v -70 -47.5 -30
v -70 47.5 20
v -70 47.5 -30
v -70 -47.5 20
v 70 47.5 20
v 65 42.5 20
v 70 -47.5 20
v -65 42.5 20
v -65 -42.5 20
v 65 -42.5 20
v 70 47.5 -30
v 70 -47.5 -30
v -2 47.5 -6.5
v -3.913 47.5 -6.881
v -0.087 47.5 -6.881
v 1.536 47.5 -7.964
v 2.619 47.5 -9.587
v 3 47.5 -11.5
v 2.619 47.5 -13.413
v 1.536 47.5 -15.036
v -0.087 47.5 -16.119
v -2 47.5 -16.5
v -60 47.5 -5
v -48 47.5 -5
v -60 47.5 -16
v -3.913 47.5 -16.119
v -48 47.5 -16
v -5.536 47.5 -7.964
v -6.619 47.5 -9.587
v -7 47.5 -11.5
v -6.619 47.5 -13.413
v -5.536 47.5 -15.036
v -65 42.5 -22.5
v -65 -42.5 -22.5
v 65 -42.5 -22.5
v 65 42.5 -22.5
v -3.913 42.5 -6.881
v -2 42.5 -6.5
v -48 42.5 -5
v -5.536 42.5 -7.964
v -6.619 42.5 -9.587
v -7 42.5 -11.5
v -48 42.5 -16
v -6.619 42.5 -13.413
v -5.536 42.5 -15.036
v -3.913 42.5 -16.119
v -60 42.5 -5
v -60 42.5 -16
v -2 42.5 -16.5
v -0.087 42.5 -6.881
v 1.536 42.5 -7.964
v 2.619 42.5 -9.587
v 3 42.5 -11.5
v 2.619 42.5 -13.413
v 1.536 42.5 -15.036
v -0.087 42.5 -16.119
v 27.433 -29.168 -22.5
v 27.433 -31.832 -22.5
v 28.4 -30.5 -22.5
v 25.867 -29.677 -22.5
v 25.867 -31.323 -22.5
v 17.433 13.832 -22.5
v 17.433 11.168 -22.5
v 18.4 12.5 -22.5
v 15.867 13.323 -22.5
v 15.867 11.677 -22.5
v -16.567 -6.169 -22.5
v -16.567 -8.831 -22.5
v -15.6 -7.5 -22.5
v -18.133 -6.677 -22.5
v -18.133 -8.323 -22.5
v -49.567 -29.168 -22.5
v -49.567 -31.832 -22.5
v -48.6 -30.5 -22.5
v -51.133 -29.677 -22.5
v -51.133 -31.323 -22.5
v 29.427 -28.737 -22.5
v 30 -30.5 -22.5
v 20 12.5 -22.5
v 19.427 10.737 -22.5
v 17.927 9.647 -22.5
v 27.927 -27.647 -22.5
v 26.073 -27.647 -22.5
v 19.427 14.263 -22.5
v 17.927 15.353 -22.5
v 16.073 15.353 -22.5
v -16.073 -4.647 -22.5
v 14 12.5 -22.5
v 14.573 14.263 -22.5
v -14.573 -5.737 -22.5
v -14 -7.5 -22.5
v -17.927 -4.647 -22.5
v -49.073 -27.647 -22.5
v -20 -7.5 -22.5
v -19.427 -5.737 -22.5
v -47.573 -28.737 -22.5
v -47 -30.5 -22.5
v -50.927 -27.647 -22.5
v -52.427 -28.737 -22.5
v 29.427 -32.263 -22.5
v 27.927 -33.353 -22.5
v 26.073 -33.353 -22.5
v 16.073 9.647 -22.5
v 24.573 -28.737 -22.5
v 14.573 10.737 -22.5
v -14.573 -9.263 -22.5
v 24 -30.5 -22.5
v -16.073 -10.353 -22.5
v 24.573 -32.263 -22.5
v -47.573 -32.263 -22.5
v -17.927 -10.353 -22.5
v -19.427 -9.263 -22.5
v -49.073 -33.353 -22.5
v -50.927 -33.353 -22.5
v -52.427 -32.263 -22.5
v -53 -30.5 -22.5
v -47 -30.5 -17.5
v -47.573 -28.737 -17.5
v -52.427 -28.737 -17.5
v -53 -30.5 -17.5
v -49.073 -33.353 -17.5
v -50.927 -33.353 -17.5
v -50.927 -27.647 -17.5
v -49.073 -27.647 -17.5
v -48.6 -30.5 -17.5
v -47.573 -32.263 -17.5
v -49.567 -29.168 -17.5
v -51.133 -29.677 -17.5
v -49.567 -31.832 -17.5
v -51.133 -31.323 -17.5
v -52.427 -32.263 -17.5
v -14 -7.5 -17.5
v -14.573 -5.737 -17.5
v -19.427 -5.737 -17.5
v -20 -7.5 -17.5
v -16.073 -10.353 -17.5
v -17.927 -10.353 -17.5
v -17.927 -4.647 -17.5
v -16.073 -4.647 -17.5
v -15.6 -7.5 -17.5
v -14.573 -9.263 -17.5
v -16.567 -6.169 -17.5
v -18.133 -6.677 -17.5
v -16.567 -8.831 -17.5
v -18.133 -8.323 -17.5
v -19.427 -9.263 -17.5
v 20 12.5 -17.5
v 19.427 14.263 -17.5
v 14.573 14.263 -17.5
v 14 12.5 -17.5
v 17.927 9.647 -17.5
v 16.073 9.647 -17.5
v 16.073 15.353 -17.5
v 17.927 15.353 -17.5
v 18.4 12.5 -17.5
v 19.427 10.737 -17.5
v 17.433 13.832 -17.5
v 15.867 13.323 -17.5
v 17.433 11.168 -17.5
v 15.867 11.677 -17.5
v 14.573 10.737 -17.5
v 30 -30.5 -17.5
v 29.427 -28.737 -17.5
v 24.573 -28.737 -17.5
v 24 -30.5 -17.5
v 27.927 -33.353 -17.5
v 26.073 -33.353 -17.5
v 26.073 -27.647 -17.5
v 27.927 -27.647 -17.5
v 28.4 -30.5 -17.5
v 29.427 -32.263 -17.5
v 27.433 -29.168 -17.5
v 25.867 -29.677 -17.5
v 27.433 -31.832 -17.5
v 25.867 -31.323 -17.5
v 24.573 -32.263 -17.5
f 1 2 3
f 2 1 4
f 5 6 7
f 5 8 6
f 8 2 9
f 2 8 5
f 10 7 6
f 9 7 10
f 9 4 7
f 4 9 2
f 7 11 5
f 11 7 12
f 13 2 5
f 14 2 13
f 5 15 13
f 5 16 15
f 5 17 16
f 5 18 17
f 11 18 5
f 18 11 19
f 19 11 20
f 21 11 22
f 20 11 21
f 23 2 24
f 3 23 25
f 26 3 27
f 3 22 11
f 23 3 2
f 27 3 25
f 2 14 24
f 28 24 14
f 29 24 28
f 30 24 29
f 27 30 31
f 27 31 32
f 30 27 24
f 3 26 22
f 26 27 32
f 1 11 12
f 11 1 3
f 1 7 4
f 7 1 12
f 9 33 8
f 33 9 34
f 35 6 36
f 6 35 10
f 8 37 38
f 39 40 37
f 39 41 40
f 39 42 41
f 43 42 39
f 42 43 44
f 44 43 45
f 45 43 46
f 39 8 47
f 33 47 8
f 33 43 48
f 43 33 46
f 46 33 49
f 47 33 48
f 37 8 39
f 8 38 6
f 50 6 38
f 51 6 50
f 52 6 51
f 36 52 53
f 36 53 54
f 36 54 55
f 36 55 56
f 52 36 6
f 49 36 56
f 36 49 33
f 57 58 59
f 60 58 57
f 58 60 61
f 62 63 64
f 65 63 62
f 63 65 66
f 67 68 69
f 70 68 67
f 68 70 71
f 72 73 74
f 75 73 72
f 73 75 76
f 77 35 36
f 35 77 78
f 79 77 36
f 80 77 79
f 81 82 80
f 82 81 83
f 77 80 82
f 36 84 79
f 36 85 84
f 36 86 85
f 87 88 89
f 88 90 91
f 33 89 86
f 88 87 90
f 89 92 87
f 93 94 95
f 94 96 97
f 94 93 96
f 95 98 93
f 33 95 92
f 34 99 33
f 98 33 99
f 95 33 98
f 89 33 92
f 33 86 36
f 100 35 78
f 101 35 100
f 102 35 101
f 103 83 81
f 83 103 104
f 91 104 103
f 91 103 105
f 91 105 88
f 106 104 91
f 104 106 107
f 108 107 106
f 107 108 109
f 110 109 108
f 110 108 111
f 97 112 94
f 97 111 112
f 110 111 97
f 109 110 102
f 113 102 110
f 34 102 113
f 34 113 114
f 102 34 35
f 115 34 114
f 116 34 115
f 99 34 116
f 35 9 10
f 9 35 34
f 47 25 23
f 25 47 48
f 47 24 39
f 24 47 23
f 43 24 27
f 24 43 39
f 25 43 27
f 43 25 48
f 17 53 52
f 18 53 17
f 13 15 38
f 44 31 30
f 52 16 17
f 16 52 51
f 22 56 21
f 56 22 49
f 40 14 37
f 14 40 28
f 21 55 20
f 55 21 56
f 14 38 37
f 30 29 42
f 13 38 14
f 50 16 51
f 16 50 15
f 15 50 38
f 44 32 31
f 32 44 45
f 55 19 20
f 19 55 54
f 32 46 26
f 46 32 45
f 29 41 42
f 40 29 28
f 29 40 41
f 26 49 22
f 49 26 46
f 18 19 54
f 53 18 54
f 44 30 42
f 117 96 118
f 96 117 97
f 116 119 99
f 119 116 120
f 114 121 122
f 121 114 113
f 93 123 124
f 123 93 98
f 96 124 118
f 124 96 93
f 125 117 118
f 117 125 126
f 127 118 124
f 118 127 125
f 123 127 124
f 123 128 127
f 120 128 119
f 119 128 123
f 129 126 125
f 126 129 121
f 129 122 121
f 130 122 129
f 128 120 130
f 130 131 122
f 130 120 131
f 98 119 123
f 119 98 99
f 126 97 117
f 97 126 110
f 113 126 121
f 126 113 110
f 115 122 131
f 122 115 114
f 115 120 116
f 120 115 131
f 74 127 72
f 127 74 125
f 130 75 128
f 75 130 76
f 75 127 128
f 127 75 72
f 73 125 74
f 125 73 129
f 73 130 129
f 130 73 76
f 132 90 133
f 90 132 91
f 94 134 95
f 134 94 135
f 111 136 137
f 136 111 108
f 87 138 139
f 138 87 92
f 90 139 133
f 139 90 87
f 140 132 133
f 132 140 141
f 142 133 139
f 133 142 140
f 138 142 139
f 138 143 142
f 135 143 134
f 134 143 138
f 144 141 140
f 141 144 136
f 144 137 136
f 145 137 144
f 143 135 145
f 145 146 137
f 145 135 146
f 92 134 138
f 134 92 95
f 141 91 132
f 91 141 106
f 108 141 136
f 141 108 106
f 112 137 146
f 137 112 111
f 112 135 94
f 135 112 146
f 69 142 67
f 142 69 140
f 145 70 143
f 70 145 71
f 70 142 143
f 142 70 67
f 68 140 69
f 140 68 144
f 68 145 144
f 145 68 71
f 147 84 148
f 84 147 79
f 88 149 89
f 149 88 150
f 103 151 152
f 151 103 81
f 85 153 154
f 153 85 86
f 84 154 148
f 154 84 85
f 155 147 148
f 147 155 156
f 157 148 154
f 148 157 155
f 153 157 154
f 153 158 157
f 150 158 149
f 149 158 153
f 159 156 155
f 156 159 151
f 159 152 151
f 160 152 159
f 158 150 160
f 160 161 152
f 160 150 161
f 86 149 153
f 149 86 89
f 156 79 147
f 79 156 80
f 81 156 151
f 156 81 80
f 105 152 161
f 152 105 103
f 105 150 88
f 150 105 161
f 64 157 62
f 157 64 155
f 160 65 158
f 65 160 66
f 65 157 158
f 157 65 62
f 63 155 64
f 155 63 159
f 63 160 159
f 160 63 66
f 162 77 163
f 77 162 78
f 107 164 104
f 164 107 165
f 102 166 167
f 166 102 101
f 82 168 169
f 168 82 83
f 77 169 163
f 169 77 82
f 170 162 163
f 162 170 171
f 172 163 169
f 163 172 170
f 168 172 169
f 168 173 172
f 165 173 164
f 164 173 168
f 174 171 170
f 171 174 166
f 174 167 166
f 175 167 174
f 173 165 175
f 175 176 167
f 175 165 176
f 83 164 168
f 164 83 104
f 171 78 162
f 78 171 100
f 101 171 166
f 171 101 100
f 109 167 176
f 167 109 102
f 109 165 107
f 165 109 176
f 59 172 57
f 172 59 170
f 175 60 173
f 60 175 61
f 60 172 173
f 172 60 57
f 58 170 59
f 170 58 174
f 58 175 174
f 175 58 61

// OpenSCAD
l = 130;
b = 85;
h = 45;
s = 5;

usbB = 12;
usbx = 5;
usbA = 11;
usbz = 6.5;

rJeck = 10/2;
jeckz = 6 + rJeck;
jeckx = 58 + usbx;

// Supporti
rse = 3;
rsi = 1.4;
// 1
x1 = usbx + 5;
y1 = 73;
// 2
x2 = usbx + usbB + 26;
y2 = 50;
// 3
x3 = usbx + usbB + 60;
y3 = 30;
// 4
x4 = usbx + usbB + 70;
y4 = 73;

module sup(){
	translate([-l/2+usbx,b/2,-h/2])
	difference(){
		cylinder(5,rse,rse);
		cylinder(5,rsi,rsi);
	}
}

difference(){
difference(){
	translate([0,0,-s])
	cube([l+2*s,b+2*s,h+s], center = true);
	
	cube([l,b,h], center= true);
}

union(){
#translate([-l/2+usbx, b/2,-h/2+usbz])
cube([usbB,s,usbA]);

translate([-l/2+jeckx,b/2+s,-h/2+jeckz])
rotate([90,0,0])
#cylinder(s,rJeck,rJeck);

}

}

translate([x1,-y1,0])
sup();
translate([x2,-y2,0])
sup();
translate([x3,-y3,0])
sup();
translate([x4,-y4,0])
sup();
